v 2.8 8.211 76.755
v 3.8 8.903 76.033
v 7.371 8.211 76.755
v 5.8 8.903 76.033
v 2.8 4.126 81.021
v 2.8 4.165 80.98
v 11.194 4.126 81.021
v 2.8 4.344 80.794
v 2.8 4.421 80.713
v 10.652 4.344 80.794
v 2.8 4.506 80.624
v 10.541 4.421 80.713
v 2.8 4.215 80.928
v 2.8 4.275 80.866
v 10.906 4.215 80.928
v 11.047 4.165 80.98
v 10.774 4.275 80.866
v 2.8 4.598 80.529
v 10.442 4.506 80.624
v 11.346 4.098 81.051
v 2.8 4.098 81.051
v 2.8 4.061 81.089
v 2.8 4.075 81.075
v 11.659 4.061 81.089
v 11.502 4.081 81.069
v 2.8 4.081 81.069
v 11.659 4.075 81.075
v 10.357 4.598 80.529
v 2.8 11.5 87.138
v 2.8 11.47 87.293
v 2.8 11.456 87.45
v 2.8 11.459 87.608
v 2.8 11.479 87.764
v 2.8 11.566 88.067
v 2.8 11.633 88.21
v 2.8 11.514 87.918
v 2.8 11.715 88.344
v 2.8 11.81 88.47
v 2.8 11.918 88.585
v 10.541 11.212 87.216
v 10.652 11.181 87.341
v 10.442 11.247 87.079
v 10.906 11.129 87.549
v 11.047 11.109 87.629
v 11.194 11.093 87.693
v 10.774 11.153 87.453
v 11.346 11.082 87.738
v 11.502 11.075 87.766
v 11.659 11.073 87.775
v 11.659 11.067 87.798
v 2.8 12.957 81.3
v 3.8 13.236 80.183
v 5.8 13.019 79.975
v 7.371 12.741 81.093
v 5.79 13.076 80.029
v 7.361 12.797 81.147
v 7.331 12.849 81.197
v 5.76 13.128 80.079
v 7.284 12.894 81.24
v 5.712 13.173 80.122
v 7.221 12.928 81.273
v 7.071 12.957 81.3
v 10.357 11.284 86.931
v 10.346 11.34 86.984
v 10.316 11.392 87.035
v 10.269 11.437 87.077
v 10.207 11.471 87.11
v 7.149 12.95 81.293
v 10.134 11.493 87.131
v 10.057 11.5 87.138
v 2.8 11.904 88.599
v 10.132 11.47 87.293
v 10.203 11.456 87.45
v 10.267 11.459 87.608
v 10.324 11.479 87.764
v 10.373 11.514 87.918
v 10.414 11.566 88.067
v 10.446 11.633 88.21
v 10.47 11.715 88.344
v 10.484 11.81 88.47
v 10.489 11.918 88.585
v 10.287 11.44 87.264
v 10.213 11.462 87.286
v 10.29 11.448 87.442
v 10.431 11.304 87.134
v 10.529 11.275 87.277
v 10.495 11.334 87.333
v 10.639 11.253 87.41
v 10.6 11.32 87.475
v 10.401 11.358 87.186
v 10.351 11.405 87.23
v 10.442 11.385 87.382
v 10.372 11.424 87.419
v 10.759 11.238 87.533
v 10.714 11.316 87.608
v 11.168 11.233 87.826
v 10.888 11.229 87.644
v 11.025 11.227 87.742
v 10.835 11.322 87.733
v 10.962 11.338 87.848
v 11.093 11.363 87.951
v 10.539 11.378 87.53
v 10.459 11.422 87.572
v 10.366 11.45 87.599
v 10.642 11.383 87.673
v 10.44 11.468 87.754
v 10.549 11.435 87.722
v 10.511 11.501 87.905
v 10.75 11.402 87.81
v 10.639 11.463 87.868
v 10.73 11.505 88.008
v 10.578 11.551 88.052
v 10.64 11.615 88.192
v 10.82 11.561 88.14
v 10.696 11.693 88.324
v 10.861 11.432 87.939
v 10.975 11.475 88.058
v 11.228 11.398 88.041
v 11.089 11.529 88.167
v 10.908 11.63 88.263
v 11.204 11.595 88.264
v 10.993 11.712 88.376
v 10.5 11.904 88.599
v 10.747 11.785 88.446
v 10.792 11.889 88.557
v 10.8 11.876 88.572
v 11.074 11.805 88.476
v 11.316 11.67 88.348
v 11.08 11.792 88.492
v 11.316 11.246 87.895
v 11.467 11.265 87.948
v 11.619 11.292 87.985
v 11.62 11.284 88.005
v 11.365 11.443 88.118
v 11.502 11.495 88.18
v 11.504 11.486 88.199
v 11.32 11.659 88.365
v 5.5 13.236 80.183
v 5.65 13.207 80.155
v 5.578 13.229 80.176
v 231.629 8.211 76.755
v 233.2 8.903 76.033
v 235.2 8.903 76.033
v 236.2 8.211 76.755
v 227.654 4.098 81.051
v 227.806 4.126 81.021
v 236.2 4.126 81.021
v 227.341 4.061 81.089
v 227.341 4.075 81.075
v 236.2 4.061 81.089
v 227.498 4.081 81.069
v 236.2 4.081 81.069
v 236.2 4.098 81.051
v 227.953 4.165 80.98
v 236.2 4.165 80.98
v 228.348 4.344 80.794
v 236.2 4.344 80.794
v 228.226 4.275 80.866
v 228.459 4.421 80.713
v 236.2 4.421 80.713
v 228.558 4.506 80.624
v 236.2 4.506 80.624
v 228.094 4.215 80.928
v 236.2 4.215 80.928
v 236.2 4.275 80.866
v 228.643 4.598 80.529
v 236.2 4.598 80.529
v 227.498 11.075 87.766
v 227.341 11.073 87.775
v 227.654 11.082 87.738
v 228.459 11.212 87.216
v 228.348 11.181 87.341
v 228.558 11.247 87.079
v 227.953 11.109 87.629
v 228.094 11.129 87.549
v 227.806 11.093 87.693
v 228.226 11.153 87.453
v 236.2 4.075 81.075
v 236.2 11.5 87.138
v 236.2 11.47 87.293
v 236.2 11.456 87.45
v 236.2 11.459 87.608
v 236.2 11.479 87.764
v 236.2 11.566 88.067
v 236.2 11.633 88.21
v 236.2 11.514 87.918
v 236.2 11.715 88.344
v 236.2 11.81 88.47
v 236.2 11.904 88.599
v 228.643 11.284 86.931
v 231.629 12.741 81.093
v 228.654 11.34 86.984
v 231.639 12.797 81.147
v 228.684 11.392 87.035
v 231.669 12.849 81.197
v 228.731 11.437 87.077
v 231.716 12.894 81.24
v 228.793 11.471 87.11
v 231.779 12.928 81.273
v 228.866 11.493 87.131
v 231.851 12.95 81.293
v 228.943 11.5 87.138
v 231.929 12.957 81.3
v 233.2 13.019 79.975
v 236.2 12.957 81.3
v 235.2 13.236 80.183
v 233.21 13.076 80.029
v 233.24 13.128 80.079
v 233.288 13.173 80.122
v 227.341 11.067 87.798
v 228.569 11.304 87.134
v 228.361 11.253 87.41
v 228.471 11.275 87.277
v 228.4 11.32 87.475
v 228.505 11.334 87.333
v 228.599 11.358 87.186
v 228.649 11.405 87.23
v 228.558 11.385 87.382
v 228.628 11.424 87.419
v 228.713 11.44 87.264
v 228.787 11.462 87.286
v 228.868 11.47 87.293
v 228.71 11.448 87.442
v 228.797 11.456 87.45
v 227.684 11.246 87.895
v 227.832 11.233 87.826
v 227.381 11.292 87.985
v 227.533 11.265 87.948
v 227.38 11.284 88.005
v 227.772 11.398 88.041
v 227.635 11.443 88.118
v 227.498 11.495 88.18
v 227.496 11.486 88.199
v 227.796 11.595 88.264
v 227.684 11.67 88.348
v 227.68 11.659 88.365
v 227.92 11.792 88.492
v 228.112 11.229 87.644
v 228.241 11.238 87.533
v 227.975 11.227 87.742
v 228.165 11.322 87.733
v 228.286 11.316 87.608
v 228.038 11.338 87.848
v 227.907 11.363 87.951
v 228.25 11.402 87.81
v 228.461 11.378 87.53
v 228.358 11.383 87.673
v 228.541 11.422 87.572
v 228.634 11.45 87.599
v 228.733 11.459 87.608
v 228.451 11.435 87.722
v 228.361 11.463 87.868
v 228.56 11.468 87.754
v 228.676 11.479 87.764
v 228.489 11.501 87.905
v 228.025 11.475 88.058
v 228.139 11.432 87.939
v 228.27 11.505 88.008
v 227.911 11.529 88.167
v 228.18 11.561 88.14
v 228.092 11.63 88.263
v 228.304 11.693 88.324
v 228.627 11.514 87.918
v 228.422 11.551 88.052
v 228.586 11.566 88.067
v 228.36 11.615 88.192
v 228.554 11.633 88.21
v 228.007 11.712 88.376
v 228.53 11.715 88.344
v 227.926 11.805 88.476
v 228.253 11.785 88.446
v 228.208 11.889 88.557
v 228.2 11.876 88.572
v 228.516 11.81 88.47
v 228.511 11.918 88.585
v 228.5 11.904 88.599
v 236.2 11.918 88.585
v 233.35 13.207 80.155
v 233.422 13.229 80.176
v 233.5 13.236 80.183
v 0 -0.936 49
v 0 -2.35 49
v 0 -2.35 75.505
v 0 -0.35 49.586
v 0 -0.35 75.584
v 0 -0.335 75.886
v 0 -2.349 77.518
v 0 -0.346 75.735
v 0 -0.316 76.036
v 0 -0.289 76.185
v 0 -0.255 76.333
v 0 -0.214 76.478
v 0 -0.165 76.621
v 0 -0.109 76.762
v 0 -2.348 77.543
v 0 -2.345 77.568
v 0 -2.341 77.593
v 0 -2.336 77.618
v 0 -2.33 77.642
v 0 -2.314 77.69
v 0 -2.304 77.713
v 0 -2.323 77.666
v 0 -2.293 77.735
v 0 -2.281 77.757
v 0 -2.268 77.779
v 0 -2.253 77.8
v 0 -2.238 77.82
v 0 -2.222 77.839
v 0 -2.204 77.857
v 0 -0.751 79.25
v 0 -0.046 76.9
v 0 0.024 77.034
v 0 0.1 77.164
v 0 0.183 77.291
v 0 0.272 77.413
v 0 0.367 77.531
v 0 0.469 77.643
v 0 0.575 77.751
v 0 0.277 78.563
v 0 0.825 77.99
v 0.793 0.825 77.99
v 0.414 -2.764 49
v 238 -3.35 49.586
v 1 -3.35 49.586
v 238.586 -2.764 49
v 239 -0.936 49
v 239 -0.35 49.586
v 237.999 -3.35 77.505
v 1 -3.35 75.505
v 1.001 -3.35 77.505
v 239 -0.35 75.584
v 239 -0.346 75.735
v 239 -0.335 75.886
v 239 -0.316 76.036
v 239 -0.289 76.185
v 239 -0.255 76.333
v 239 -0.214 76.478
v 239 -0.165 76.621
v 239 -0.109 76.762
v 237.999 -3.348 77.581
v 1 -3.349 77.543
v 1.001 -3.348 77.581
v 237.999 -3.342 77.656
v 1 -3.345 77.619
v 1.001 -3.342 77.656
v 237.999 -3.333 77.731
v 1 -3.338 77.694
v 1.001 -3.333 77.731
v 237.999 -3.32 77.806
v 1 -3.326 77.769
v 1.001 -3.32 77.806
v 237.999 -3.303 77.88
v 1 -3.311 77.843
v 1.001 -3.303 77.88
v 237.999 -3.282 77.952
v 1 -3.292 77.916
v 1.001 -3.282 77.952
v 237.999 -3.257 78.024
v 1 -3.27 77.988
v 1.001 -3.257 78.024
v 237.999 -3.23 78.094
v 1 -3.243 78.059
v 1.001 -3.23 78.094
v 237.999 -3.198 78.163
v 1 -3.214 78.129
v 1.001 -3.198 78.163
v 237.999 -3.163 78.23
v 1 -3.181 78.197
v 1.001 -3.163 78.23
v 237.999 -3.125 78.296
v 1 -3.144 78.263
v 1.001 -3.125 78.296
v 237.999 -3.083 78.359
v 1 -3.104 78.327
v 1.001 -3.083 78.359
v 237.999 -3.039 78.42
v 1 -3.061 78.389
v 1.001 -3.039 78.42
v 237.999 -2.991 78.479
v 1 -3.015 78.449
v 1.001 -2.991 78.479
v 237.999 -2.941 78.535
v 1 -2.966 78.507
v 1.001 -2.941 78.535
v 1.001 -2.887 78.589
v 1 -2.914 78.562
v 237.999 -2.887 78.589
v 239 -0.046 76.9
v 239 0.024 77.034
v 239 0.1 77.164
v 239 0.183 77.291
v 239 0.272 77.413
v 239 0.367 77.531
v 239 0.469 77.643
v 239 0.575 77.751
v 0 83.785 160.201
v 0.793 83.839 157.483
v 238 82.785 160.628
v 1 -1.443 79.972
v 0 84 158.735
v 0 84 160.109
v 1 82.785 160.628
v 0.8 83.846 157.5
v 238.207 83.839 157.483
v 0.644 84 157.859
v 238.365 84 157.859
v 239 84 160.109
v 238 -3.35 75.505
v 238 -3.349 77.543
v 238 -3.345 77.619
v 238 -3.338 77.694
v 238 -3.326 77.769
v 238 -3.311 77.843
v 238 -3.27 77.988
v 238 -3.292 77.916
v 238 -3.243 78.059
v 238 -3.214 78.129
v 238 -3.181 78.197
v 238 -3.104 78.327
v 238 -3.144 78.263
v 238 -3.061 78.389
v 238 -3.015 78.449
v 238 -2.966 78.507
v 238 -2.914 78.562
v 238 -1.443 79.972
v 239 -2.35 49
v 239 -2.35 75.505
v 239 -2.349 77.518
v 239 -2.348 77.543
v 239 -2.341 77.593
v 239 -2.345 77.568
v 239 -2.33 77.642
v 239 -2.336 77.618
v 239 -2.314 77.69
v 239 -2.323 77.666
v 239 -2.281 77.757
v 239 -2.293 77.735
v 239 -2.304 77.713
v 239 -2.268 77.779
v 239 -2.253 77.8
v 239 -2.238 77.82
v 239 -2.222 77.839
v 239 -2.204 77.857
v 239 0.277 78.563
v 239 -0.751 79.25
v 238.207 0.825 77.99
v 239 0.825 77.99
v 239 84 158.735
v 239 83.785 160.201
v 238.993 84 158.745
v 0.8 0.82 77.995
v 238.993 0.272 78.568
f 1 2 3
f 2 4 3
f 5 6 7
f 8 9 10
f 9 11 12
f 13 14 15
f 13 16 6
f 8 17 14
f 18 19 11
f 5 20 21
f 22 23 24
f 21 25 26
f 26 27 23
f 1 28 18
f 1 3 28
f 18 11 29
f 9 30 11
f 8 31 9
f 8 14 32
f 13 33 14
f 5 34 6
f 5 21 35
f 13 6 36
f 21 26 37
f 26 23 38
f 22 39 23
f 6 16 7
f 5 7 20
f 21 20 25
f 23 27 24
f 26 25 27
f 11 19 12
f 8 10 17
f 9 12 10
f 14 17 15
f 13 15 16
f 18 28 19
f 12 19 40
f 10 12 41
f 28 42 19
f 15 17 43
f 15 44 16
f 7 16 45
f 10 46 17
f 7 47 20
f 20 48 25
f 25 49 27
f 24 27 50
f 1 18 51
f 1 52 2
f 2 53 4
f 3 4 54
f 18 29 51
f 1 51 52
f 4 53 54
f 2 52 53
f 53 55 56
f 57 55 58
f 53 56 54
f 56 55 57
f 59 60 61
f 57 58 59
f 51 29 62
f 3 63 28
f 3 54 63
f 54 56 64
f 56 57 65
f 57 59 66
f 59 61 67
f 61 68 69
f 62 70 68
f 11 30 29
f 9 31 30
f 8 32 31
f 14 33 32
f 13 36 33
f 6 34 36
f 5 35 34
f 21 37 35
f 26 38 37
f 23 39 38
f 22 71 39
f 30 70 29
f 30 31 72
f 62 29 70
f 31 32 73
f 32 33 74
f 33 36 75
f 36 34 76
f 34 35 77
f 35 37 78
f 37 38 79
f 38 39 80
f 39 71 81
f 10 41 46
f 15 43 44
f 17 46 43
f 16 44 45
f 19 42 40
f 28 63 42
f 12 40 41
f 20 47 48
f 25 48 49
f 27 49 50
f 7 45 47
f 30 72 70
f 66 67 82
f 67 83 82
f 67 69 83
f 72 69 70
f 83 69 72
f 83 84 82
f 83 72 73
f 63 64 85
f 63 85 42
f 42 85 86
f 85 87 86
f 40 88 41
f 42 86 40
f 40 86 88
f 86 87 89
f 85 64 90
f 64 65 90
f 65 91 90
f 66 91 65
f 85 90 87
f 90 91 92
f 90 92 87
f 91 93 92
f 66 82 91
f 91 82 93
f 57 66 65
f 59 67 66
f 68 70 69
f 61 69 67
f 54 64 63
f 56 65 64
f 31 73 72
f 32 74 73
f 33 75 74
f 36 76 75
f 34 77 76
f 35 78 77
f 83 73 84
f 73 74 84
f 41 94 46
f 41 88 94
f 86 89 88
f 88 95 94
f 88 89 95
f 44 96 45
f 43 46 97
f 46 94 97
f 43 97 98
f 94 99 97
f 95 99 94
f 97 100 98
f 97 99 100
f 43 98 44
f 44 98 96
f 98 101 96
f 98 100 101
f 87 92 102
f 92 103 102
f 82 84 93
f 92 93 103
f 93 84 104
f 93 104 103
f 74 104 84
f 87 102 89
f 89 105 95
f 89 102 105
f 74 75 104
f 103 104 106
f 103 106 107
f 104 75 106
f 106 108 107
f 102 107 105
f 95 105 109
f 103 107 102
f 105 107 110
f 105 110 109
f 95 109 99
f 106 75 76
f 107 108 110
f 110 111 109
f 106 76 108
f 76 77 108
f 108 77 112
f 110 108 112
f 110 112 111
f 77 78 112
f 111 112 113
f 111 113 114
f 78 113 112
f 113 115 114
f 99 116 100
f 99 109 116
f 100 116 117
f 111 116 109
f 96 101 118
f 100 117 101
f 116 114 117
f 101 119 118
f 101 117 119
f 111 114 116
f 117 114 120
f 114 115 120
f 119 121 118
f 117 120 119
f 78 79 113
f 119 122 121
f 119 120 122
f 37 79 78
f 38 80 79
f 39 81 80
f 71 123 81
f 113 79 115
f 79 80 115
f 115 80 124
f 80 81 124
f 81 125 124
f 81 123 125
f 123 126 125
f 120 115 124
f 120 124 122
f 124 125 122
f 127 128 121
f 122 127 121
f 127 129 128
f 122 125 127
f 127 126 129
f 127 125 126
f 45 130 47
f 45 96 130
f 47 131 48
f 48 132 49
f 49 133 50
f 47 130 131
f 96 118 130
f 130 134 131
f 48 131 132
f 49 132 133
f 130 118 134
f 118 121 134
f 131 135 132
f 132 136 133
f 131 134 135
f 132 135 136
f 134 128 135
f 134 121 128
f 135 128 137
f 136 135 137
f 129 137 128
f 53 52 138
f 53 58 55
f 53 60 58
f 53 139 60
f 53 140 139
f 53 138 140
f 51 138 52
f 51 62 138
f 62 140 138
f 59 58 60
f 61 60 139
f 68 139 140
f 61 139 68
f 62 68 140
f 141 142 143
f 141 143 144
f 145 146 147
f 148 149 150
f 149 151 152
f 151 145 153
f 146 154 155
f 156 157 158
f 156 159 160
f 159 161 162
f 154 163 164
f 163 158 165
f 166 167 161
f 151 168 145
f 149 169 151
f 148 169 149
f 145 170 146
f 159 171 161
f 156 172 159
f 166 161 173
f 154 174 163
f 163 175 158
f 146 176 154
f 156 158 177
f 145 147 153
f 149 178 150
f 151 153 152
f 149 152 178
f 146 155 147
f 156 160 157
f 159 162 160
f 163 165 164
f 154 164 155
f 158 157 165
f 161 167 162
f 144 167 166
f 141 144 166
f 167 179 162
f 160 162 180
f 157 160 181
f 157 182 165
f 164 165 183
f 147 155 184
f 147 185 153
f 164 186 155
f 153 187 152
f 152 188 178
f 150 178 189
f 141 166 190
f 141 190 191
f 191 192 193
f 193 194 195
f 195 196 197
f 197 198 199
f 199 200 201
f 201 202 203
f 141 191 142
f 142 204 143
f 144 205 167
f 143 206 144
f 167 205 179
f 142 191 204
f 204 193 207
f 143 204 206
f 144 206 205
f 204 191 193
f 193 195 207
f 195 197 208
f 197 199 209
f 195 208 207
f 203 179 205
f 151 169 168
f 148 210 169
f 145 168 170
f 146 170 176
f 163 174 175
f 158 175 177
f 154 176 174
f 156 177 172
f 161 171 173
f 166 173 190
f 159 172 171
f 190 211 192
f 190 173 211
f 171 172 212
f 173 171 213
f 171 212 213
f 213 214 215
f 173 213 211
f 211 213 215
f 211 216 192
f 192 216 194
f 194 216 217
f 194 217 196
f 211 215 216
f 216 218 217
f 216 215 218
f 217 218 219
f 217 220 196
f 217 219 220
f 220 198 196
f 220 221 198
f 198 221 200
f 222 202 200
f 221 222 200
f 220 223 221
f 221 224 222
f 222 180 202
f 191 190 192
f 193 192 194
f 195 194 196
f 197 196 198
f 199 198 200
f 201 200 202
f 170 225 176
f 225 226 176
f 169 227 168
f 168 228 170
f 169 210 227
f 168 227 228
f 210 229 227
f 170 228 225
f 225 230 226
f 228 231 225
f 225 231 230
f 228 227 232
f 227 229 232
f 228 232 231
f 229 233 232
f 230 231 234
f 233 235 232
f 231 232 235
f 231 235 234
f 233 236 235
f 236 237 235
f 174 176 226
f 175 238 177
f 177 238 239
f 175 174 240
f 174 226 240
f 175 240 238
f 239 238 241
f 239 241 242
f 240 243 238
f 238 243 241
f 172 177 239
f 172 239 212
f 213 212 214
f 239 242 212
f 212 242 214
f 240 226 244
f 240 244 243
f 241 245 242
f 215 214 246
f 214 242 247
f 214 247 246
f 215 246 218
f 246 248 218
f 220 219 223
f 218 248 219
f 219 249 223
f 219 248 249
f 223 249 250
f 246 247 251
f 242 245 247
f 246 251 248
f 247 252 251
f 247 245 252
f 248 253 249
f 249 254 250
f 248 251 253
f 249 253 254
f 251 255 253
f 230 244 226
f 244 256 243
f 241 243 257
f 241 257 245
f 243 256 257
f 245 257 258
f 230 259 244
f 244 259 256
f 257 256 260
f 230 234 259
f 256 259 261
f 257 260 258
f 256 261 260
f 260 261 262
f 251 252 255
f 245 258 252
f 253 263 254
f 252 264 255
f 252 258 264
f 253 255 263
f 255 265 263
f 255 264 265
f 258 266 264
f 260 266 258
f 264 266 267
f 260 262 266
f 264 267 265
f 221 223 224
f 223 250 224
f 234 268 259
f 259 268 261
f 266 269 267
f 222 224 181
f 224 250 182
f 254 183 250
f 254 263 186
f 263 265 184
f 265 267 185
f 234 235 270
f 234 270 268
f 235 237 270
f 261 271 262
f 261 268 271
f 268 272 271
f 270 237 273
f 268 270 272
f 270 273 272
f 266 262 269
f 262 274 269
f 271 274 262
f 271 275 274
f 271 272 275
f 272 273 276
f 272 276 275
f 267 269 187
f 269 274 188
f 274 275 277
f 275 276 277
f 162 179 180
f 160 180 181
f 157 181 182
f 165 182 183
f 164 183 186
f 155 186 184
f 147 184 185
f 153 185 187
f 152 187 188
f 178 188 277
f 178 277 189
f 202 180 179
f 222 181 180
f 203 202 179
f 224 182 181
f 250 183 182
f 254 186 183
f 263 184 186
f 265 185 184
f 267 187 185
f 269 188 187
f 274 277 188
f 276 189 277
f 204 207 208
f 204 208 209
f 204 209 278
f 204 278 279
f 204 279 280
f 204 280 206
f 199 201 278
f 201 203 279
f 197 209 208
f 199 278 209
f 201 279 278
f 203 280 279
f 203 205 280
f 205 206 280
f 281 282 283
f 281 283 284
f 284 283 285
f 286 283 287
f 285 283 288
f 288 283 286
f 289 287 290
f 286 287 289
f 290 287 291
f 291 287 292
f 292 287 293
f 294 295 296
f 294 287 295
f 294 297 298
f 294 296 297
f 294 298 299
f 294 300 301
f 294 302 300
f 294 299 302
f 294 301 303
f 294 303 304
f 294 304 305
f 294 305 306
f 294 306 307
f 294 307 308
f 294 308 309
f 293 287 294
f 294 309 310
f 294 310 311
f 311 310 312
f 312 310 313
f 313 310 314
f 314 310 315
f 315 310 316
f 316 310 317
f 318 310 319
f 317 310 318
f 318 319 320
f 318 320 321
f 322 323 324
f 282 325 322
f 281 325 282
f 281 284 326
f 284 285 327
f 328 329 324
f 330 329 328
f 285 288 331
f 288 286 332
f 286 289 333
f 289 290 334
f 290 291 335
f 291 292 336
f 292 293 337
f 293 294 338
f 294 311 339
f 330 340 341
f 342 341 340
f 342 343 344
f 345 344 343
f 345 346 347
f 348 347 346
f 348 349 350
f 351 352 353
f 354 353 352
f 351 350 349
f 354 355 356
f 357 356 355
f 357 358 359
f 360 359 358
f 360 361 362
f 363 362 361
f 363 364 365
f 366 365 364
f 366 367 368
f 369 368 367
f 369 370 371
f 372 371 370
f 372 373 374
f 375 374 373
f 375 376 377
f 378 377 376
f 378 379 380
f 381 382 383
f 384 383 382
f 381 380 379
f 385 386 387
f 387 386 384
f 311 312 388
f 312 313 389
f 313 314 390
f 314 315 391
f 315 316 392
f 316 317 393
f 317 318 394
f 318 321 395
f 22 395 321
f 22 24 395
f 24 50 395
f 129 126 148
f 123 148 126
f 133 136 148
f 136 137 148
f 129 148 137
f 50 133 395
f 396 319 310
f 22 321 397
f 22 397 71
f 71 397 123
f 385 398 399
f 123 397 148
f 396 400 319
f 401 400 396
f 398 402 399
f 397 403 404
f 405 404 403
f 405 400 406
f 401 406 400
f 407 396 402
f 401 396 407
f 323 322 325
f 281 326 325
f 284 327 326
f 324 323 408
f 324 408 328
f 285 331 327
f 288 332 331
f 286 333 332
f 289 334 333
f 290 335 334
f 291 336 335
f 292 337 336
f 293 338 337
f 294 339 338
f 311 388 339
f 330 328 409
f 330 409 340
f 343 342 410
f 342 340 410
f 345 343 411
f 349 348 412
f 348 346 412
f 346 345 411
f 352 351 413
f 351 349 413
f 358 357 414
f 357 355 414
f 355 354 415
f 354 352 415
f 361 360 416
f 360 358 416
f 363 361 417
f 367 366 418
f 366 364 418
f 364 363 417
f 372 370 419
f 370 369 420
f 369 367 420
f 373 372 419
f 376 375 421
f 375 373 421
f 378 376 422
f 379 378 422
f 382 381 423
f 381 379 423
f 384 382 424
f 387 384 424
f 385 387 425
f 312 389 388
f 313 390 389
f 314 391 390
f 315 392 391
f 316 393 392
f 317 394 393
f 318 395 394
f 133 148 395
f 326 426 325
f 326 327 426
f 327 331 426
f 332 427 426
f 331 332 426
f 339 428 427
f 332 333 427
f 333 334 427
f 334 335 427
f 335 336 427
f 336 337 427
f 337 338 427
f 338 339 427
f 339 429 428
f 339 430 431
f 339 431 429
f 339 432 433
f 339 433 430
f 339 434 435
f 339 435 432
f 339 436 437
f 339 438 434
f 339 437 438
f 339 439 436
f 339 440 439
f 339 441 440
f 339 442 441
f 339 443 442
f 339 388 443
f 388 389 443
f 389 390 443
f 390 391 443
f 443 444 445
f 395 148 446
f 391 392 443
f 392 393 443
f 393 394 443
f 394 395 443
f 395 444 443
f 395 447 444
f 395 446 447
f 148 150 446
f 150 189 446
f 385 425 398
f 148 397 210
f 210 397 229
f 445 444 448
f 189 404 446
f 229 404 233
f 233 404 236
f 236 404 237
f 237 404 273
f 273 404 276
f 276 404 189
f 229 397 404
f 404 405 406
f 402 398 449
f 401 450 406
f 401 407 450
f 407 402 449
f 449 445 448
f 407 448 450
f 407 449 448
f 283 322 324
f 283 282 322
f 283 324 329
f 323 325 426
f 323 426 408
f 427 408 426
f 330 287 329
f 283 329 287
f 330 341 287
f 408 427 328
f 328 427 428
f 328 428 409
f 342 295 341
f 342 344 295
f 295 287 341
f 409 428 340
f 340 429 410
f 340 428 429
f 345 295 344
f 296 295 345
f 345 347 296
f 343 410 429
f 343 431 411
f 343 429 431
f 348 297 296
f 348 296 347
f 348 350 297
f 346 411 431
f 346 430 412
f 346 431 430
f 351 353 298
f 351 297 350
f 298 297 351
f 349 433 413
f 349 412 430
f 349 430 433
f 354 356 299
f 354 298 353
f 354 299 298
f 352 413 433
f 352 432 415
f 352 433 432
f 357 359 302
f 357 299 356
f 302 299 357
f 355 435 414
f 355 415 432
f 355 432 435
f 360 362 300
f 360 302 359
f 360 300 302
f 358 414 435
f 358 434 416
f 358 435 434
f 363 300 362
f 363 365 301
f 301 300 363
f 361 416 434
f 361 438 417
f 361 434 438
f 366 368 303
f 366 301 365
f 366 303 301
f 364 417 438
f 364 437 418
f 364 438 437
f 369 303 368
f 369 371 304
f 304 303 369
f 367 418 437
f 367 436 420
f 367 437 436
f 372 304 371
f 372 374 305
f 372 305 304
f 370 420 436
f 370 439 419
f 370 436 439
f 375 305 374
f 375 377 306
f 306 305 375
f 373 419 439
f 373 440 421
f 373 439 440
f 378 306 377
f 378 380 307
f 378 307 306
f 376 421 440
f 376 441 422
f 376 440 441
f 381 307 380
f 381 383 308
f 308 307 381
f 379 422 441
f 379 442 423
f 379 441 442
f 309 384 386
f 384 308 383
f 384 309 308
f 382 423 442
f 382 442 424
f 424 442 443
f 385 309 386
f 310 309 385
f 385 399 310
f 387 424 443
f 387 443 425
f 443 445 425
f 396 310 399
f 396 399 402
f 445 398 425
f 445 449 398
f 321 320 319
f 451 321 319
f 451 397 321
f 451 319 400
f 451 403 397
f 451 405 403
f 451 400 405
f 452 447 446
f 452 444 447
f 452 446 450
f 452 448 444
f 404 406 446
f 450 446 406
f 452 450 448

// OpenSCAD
// ============================================================
// pick_lid.scad -- ONE lid over BOTH pick tray rows.
//
// Tray B's floor sits just above tray A's rim, but their RIMS
// are still tray_step (about 82mm) apart, so a lid covering
// both as two flat steps would be a Z in section -- unprintable
// without support whichever way it is laid, because one arm is
// always cantilevered. So the body's whole pick surface is a
// single plane at pick_lid_slope (43.8 degrees) and this is a flat plate
// lying on it, with a skirt down its front edge.
//
// What holds it on that slope is NOT the skirt. PLA on PLA grips to about
// 17 degrees, and this slope is two and a half times that, so something has to
// bear against a body face that faces BACK (toward +Y). The skirt hangs outside
// the front face, 0.35 mm clear of it; sliding down the slope moves the lid
// forward, which takes the skirt AWAY from that face. Revisions 6 to 9 said
// otherwise, and test print 2 slid the lid straight off. The retention is the
// pair of lugs under the plate's ends (D38): each drops into an end bay of tray
// A directly behind a stop block in the front corner. They are tapered and filleted at the root (D62-D64). Both stop faces are
// perpendicular to the pick plane, so the lid stops after 0.5 mm of down-slope
// travel, while lifting it by the front edge (it pivots about its back edge, and
// the lug swings along the plane's normal, i.e. along the faces) or straight up
// does not jam. An earlier vertical stop face did jam at 0.5 to 2 degrees of
// tilt (review of revision 10). probes/lid_retention.py
// checks that, the straight lift-off, and that the lid cannot be fitted turned
// round.
//
// Plate and skirt are ONE piece (D53): a single profile, extruded once, with a
// concave fillet inside the bend and a small round outside it, and one chamfer
// along each x-end that runs on round the bend.
//
// The skirt closes the scalloped front wall, which is cut well below the plane
// so the front tray is open to the front once the lid is lifted, and carries
// no lettering (D61). It has no finger notches or anything hung from it (D44):
// you pinch it between thumb and forefinger.
//
// Local origin: the module's front-bottom-left outer corner,
// offset in X only. This part is modelled IN ASSEMBLED
// ORIENTATION -- tilted -- deliberately: modelling it flat and
// tilting it in layout.scad meant two rotations whose signs had
// to agree, and they did not; the lid swung down into the body
// instead of up the plane.
//
// Material: PLA or PETG.
// Print orientation: rotate [180 - pick_lid_slope, 0, 0] (see
//   print_export.scad) so the plate's TOP face is on the bed and
//   the skirt rises at about 46 degrees. -pick_lid_slope alone
//   lays the plate flat with the skirt pointing DOWN (INCIDENTS).
//   NOT as modelled.
//
// To remove: pinch the skirt and plate edge between thumb and forefinger and lift.
//   It may tilt about its back edge (1.2 mm from the wall behind tray B; swept
//   clear to 15 degrees) or come straight up or along the plane's normal, then
//   forward; none of these touches the stop blocks after the first few
//   millimetres (probes/lid_retention.py, joints.json motion). Nothing to unclip.
//
// EXPECTED_BBOX: [239.0, 87.35, 111.63]   (87.95 until D61 removed the 0.6 mm FRONT relief)
// ============================================================

include <../params.scad>

// The underside of the plate: the pick plane, floated by pick_lid_gap.
function zu(y) = pickplane(y) + pick_lid_gap;

lid_back_y = yB_tray1 - pick_lid_back_clear;   // 84.0

assert(lid_back_y > yB_tray0,
       "the pick lid does not reach across tray B");
assert(pick_lid_skirt_over > 3,
       "the front skirt overlaps the scalloped front wall by under 3mm (its bottom is front_h - overlap by definition; probes/lid_retention.py (g) measures the built lid)");

module yz_extrude(x0, x1) {
    rotate([90, 0, 90]) translate([0, 0, x0])
        linear_extrude(height = x1 - x0) children();
}

// A profile in (x, z), extruded back along Y.
module xz_extrude(y0, y1) {
    translate([0, y1, 0]) rotate([90, 0, 0])
        linear_extrude(height = y1 - y0) children();
}

hook_front = -pick_lid_hook_t;          // -3.35: the skirt is lid_t thick, like the plate
hook_back  = -pick_lid_clear;           // -0.35, clear of the module's front face

// ---- The lid's ONE section (D53) -----------------------------------------------------
// Plate and skirt used to be two polygons (PLATE and HOOK) unioned, each with its own
// chamfered ends: a seam at the bend and a two-piece look (test print 4). This is a single
// closed (y, z) profile, extruded once across the lid's width. Walking it from the skirt's
// bottom-outer corner: up the skirt's outer face, round the bend (outside radius
// pick_bend_out_r), along the plate's top face to the back, down the back face, forward along
// the underside (the seating plane, floated pick_lid_gap), round the bend again on the inside
// (pick_bend_in_r, a fillet that adds material) and down the skirt's inner face to the bottom.
// The skirt is lid_t thick, the same as the plate, so the wall is one thickness all the way
// round; the inside fillet makes the bend itself a little thicker (calculations.md).
// Convex corners that are not the bend keep the 45 degree chamfers of D27, worked out the way
// offset(delta, chamfer = true) does it: the cut is L = 2 r (1 - sin(a/2)) / sin(a) long on each
// leg of a corner of interior angle a. Those are the skirt's two bottom corners and the plate's
// two back corners; the plate's top face goes on the bed, so the corners there stay chamfers
// and the one round is the bend, which is only a 46 degree turn (see pick_bend_out_r).
alpha   = pick_lid_slope;
pdir    = [cos(alpha), sin(alpha)];             // along the plate, up and back
function lid_zT(y) = zu(y) + pick_lid_tv;       // plate top face
function lid_cham(a) = 2 * lid_round * (1 - sin(a / 2)) / sin(a);
function arc_pts(c, r, a0, a1, n = 16) = [for (i = [0 : n]) c + r * [cos(a0 + (a1 - a0) * i / n), sin(a0 + (a1 - a0) * i / n)]];

skirt_zb   = zu(0) - pick_lid_hook_h;           // the skirt's bottom
bend_turn  = 90 - alpha;                        // 46.2: how far the surface turns at the bend
// outside (convex) round, top face to skirt outer face
bo_t   = pick_bend_out_r * tan(bend_turn / 2);  // tangent length
bo_C   = [hook_front, lid_zT(hook_front)];      // the sharp corner it replaces
bo_B1  = [hook_front, bo_C[1] - bo_t];          // on the outer face
bo_cen = bo_B1 + [pick_bend_out_r, 0];
bo_B2  = bo_C + bo_t * pdir;                    // on the top face
// inside (concave) fillet, underside to skirt inner face; the air wedge there is 90 + alpha wide
bi_t   = pick_bend_in_r / tan((90 + alpha) / 2);
bi_C   = [hook_back, zu(hook_back)];
bi_F1  = [hook_back, bi_C[1] - bi_t];           // on the skirt's inner face
bi_cen = bi_F1 + [pick_bend_in_r, 0];
bi_F2  = bi_C + bi_t * pdir;                    // on the underside
// plate back corners: top (interior angle 90 - alpha) and bottom (90 + alpha)
bk_Ct  = [lid_back_y, lid_zT(lid_back_y)];
bk_Cb  = [lid_back_y, zu(lid_back_y)];
bk_Lt  = lid_cham(90 - alpha);
bk_Lb  = lid_cham(90 + alpha);
sk_ch  = lid_cham(90);

assert(norm(bo_cen + pick_bend_out_r * [cos(180 - bend_turn), sin(180 - bend_turn)] - bo_B2) < 1e-6
       && norm(bi_cen + pick_bend_in_r * [cos(90 + alpha), sin(90 + alpha)] - bi_F2) < 1e-6,
       "the bend arcs do not land on their tangent points");

LID_PROFILE = concat(
    [[hook_front + sk_ch, skirt_zb], [hook_front, skirt_zb + sk_ch]],
    arc_pts(bo_cen, pick_bend_out_r, 180, 180 - bend_turn),
    [bk_Ct - bk_Lt * pdir, bk_Ct + bk_Lt * [0, -1],
     bk_Cb + bk_Lb * [0, 1], bk_Cb - bk_Lb * pdir],
    arc_pts(bi_cen, pick_bend_in_r, 90 + alpha, 180),
    [[hook_back, skirt_zb + sk_ch], [hook_back - sk_ch, skirt_zb]]
);

module pick_body() { yz_extrude(0, pick_lid_w) polygon(LID_PROFILE); }

// The x-end edge, continuous around the bend (D53). One chain of edges runs along the
// outside of the lid: the plate's top face, the bend's round, the skirt's outer face. Each x-end
// face meets that chain in one edge, and it gets one chamfer of lid_chamfer (= pick_skirt_chamfer,
// 1.0) all the way. The chain is the lid's own outline walked as a polyline (the bend's arc is
// the same 16 points the profile uses), and the cutter is one convex piece per segment: a
// quadrilateral section swept between the mitred sections at the segment's two ends. Neighbouring
// pieces share a section exactly and cross at the facet angle (2.9 degrees on the arc), so there
// is no tangent line where one analytic cutter (a prism, a cone) hands over to the next: the
// first version built it that way and the junctions came out as zero-area slivers (INCIDENTS.md).
// The section, in (n, x): n is the distance out of the surface, x in from the end face. The chamfer
// plane runs through (n = -c, x = 0) and (n = 0, x = c); the section is the triangle under that
// line, carried on past x = 0 so that no vertex or edge of the cutter lies in the end face's plane
// (a cutter vertex there left zero-area faces).
function chain_poly(c) = [[-c - 1, -1], [1, c + 1], [1, -1]];   // (n, x): a triangle, the chamfer plane its hypotenuse
// the chain, in the profile's walking order: the skirt (from below its bottom), the bend, the top
// face (to well past the back). The bend's chain points are the MIDDLES of the profile's arc facets,
// and the two points either side of it sit 2 mm into the straight faces: a chain vertex exactly on a
// profile vertex puts the cutters' crease through the facet-to-facet line and leaves zero-area faces
// there. The middles lie in the facet planes, so the chamfer is the same width to within 0.02 mm.
ARC = arc_pts(bo_cen, pick_bend_out_r, 180, 180 - bend_turn);
CHAIN = concat([[hook_front, skirt_zb - 2], [hook_front, bo_B1[1] - 2]],
               [for (i = [0 : len(ARC) - 2]) (ARC[i] + ARC[i + 1]) / 2],
               [bo_B2 + 2 * pdir, bo_B2 + 200 * pdir]);
function seg_n(i) = let(d = CHAIN[i + 1] - CHAIN[i], l = norm(d)) [-d[1] / l, d[0] / l];
// the offset vector at chain point i: the mitre of its two segments (length 1 / cos(half turn))
function miter(i) = i == 0 ? seg_n(0)
                  : i == len(CHAIN) - 1 ? seg_n(len(CHAIN) - 2)
                  : (seg_n(i - 1) + seg_n(i)) / (1 + seg_n(i - 1) * seg_n(i));
function slice_pts(i, c) = [for (q = chain_poly(c)) [q[1], CHAIN[i][0] + miter(i)[0] * q[0], CHAIN[i][1] + miter(i)[1] * q[0]]];
module chain_cut(c) {
    for (i = [0 : len(CHAIN) - 2])
        hull() polyhedron(points = concat(slice_pts(i, c), slice_pts(i + 1, c)),
                          faces = [[0, 2, 1], [3, 4, 5], [0, 1, 4, 3], [1, 2, 5, 4], [2, 0, 3, 5]]);
}
module pick_end_chamfers() {
    assert(abs(lid_chamfer - pick_skirt_chamfer) < 1e-9, "one chamfer runs round the bend: lid_chamfer and pick_skirt_chamfer are one size");
    for (end = [0, 1])
        translate([end * pick_lid_w, 0, 0]) mirror([end, 0, 0]) chain_cut(lid_chamfer);
}

// layout.scad offsets the lid by lid_dx in X; the lugs are
// placed on the BODY's coordinates, so the same offset is taken off here. Kept in
// step by the assert in layout.scad.
lid_dx_local = (module_w - pick_lid_w) / 2;                 // 0.5

// Retention lugs (D32, D34, D38, D62-D64): one under each end of the plate, hanging into
// the end bay of tray A directly behind a stop block in the front corner (params.scad
// 9). Both stop faces are PERPENDICULAR TO THE PICK PLANE: the lug's front face
// here, the block's back face in body.scad. Going down the slope the lid moves
// along that face's normal and stops after pick_lug_clear; lifting by the front
// edge swings the lug along the plane's normal, which is along the faces, so
// nothing jams. Built in the plate's own frame (s along the slope, n normal to
// it, negative below the underside) and placed by the ONE rotation that lays
// that frame on the plane; it reaches 1 mm up into the plate so the union is
// volumetric. The tip's X edges are chamfered (pick_lug_chamfer) to lead it in.
// Revision 18 (D62-D64) stiffens it without moving the front face, the outboard face or the tip: the
// back and inboard faces draft outward toward the plate, the back is 2 mm longer, and the same two
// sides carry a root fillet. The body is already printed; every added surface keeps 1 mm or more to it
// (probes/lug_clearance.py).
function lug_s(y) = y / cos(pick_lid_slope);

// D62-D64: the lug is one lofted solid, built in the plate's own frame as (x, s, n) with x measured
// INBOARD from the lug's outboard face (the face that keeps pick_lug_clear to the side wall), s along
// the slope from the lid frame's origin and n normal to the plate (negative below the underside).
// Seen from the tip (n = -d) to the root (n = 0) it widens on its INBOARD side and its BACK side only,
// by pick_lug_grow over the whole depth (the same slope on both, k = grow / d); the front face (the stop
// face, s = s0) and the outboard face (x = 0) are straight along n, exactly as in D38. Printed with the
// plate on the bed the lug narrows going up: no overhang. At the root a fillet of radius pick_lug_fillet_r
// runs round the same two sides (D63). Every cross-section is the same kind of ring, a rectangle whose
// back-inboard corner is rounded, so rings loft one to the next with no collapsed vertices and the solid
// is watertight by construction. A ring at level n: x from xlo to xw, s from s0 to sw, grown by u on the
// inboard and back sides, with the corner radius pick_lug_round + u centred on the lug's own corner.
LUG_ARC_N = 10;      // segments of the fillet's arc (rings along n)
LUG_CORNER_N = 6;    // segments of the rounded back-inboard corner in each ring
function lug_k()       = pick_lug_grow / pick_lug_d;
function lug_xw(n)     = pick_lug_t + lug_k() * (n + pick_lug_d);              // inboard face at level n
function lug_sw(n)     = pick_lug_s0 + pick_lug_len + lug_k() * (n + pick_lug_d);   // back face at level n
function lug_ring(n, xlo, xw, sw, u) =
    let(rho = pick_lug_round, cx = xw - rho, cs = sw - rho, R = rho + u)
    concat([[xlo, pick_lug_s0, n], [xw + u, pick_lug_s0, n]],
           [for (j = [0 : LUG_CORNER_N]) let(a = 90 * j / LUG_CORNER_N) [cx + R * cos(a), cs + R * sin(a), n]],
           [[xlo, sw + u, n]]);
// the fillet arc in the (x, n) section: a circle of radius r tangent to the plate plane (n = np) and to the
// drafted face, which meets the plate at the angle 90 + theta. np is the plate plane the fillet is drawn for.
lug_theta = atan(lug_k());
lug_np    = -pick_lug_plate_embed;
lug_T     = pick_lug_fillet_T;                                                  // tangent length from the corner (params.scad)
lug_xc    = lug_xw(lug_np);                                                    // the wall at the plate plane
lug_C     = [lug_xc + lug_T, lug_np - pick_lug_fillet_r];                      // fillet circle centre (x, n)
function lug_arc(j) = let(a = 90 + (90 - lug_theta) * j / LUG_ARC_N)
                      lug_C + pick_lug_fillet_r * [cos(a), sin(a)];            // j = 0: plate tangent point; j = N: tangent point on the wall
LUG_RINGS = concat(
    [lug_ring(-pick_lug_d, pick_lug_chamfer, pick_lug_t - pick_lug_chamfer, pick_lug_s0 + pick_lug_len, 0),
     lug_ring(-pick_lug_d + pick_lug_chamfer, 0, lug_xw(-pick_lug_d + pick_lug_chamfer), lug_sw(-pick_lug_d + pick_lug_chamfer), 0)],
    [for (j = [LUG_ARC_N : -1 : 0]) let(p = lug_arc(j), n = p[1], u = p[0] - lug_xw(n))
        lug_ring(n, 0, lug_xw(n), lug_sw(n), j == LUG_ARC_N ? 0 : u)],
    // 1 mm up into the plate (3 thick), the fillet's outer edge carried straight on
    [let(n = 1.0, u = lug_xc + lug_T - lug_xw(n)) lug_ring(n, 0, lug_xw(n), lug_sw(n), u)]);
assert(lug_xc + lug_T - lug_xw(1.0) > 0.05, "the lug's fillet is too small for its draft (D63)");
assert(lug_arc(LUG_ARC_N)[1] > -pick_lug_d + pick_lug_chamfer + 0.5, "the root fillet reaches the tip chamfer (D63)");
module lug_loft(rings) {
    m = len(rings[0]); k = len(rings);
    pts = [for (r = rings) each r];
    side = [for (i = [0 : k - 2]) for (v = [0 : m - 1])
               let(w = (v + 1) % m, a = i * m + v, b = i * m + w, c = (i + 1) * m + w, d = (i + 1) * m + v)
               each [[a, c, b], [a, d, c]]];
    bottom = [[for (v = [0 : m - 1]) v]];
    top = [[for (v = [m - 1 : -1 : 0]) (k - 1) * m + v]];
    polyhedron(points = pts, faces = concat(side, bottom, top), convexity = 6);
}
// x_out: lid-local X of the lug's outboard face; sgn = +1 when the inboard side is +X (left lug), -1 (right lug)
module pick_lug(x_out, sgn) {
    translate([x_out, 0, zu(0)]) rotate([pick_lid_slope, 0, 0]) mirror([sgn > 0 ? 0 : 1, 0, 0]) lug_loft(LUG_RINGS);
}
module pick_lugs() {
    pick_lug(pick_lug_x_left - lid_dx_local, 1);
    pick_lug(pick_lug_x_right + pick_lug_t - lid_dx_local, -1);
}

// No "FRONT" mark (D61): the D38 embossed lettering is removed. The lugs already make the lid go on one way
// only, and printed with the plate on the bed the raised letters on the downward-facing skirt made the slicer
// report floating regions and ask for supports.

// Underside x-end edges (D48): the plate's end face meets its underside in a 90 degree
// convex edge along the whole slope. Same construction as the top chamfers, mirrored onto the
// underside; it starts 0.25 mm behind the point where the inside bend fillet (D53) meets the underside
// (in front of that the surface is the fillet, whose end edge stays square like the skirt's inner
// end edges); in revision 12 it started at y = 0.2 behind a sharp crotch.
// (Turned 44.5 degrees, not 45: at exactly 45 the prism's edge lies IN the underside plane, and
// where the plate's back chamfer crosses it that left zero-area slivers and a non-watertight mesh.)
module pick_under_chamfers() {
    c = pick_under_chamfer; a = c * sqrt(2);
    s0 = (bi_F2[0] + 0.25) / cos(pick_lid_slope);      // along the slope, from y = 0: 0.25 past where the inside fillet ends
    for (x = [0, pick_lid_w])
        translate([x, 0, zu(0)])
            rotate([pick_lid_slope, 0, 0]) translate([0, s0 + 200, 0]) rotate([0, 44.5, 0])
                cube([a, 400, a], center = true);
}

module pick_lid_geometry() {
    difference() {
        union() { pick_body(); pick_lugs(); }
        pick_end_chamfers();
        pick_under_chamfers();
    }
}

// SUBFEATURES: pick_body, pick_lugs
SUBFEATURE = is_undef(SUBFEATURE) ? "" : SUBFEATURE;
module subfeature_by_name(name) {
    if (name == "pick_body") pick_body();
    else if (name == "pick_lugs") pick_lugs();
    else assert(false, str("Unknown sub-feature '", name, "' in pick_lid.scad"));
}
if (SUBFEATURE != "") subfeature_by_name(SUBFEATURE);
else pick_lid_geometry();
